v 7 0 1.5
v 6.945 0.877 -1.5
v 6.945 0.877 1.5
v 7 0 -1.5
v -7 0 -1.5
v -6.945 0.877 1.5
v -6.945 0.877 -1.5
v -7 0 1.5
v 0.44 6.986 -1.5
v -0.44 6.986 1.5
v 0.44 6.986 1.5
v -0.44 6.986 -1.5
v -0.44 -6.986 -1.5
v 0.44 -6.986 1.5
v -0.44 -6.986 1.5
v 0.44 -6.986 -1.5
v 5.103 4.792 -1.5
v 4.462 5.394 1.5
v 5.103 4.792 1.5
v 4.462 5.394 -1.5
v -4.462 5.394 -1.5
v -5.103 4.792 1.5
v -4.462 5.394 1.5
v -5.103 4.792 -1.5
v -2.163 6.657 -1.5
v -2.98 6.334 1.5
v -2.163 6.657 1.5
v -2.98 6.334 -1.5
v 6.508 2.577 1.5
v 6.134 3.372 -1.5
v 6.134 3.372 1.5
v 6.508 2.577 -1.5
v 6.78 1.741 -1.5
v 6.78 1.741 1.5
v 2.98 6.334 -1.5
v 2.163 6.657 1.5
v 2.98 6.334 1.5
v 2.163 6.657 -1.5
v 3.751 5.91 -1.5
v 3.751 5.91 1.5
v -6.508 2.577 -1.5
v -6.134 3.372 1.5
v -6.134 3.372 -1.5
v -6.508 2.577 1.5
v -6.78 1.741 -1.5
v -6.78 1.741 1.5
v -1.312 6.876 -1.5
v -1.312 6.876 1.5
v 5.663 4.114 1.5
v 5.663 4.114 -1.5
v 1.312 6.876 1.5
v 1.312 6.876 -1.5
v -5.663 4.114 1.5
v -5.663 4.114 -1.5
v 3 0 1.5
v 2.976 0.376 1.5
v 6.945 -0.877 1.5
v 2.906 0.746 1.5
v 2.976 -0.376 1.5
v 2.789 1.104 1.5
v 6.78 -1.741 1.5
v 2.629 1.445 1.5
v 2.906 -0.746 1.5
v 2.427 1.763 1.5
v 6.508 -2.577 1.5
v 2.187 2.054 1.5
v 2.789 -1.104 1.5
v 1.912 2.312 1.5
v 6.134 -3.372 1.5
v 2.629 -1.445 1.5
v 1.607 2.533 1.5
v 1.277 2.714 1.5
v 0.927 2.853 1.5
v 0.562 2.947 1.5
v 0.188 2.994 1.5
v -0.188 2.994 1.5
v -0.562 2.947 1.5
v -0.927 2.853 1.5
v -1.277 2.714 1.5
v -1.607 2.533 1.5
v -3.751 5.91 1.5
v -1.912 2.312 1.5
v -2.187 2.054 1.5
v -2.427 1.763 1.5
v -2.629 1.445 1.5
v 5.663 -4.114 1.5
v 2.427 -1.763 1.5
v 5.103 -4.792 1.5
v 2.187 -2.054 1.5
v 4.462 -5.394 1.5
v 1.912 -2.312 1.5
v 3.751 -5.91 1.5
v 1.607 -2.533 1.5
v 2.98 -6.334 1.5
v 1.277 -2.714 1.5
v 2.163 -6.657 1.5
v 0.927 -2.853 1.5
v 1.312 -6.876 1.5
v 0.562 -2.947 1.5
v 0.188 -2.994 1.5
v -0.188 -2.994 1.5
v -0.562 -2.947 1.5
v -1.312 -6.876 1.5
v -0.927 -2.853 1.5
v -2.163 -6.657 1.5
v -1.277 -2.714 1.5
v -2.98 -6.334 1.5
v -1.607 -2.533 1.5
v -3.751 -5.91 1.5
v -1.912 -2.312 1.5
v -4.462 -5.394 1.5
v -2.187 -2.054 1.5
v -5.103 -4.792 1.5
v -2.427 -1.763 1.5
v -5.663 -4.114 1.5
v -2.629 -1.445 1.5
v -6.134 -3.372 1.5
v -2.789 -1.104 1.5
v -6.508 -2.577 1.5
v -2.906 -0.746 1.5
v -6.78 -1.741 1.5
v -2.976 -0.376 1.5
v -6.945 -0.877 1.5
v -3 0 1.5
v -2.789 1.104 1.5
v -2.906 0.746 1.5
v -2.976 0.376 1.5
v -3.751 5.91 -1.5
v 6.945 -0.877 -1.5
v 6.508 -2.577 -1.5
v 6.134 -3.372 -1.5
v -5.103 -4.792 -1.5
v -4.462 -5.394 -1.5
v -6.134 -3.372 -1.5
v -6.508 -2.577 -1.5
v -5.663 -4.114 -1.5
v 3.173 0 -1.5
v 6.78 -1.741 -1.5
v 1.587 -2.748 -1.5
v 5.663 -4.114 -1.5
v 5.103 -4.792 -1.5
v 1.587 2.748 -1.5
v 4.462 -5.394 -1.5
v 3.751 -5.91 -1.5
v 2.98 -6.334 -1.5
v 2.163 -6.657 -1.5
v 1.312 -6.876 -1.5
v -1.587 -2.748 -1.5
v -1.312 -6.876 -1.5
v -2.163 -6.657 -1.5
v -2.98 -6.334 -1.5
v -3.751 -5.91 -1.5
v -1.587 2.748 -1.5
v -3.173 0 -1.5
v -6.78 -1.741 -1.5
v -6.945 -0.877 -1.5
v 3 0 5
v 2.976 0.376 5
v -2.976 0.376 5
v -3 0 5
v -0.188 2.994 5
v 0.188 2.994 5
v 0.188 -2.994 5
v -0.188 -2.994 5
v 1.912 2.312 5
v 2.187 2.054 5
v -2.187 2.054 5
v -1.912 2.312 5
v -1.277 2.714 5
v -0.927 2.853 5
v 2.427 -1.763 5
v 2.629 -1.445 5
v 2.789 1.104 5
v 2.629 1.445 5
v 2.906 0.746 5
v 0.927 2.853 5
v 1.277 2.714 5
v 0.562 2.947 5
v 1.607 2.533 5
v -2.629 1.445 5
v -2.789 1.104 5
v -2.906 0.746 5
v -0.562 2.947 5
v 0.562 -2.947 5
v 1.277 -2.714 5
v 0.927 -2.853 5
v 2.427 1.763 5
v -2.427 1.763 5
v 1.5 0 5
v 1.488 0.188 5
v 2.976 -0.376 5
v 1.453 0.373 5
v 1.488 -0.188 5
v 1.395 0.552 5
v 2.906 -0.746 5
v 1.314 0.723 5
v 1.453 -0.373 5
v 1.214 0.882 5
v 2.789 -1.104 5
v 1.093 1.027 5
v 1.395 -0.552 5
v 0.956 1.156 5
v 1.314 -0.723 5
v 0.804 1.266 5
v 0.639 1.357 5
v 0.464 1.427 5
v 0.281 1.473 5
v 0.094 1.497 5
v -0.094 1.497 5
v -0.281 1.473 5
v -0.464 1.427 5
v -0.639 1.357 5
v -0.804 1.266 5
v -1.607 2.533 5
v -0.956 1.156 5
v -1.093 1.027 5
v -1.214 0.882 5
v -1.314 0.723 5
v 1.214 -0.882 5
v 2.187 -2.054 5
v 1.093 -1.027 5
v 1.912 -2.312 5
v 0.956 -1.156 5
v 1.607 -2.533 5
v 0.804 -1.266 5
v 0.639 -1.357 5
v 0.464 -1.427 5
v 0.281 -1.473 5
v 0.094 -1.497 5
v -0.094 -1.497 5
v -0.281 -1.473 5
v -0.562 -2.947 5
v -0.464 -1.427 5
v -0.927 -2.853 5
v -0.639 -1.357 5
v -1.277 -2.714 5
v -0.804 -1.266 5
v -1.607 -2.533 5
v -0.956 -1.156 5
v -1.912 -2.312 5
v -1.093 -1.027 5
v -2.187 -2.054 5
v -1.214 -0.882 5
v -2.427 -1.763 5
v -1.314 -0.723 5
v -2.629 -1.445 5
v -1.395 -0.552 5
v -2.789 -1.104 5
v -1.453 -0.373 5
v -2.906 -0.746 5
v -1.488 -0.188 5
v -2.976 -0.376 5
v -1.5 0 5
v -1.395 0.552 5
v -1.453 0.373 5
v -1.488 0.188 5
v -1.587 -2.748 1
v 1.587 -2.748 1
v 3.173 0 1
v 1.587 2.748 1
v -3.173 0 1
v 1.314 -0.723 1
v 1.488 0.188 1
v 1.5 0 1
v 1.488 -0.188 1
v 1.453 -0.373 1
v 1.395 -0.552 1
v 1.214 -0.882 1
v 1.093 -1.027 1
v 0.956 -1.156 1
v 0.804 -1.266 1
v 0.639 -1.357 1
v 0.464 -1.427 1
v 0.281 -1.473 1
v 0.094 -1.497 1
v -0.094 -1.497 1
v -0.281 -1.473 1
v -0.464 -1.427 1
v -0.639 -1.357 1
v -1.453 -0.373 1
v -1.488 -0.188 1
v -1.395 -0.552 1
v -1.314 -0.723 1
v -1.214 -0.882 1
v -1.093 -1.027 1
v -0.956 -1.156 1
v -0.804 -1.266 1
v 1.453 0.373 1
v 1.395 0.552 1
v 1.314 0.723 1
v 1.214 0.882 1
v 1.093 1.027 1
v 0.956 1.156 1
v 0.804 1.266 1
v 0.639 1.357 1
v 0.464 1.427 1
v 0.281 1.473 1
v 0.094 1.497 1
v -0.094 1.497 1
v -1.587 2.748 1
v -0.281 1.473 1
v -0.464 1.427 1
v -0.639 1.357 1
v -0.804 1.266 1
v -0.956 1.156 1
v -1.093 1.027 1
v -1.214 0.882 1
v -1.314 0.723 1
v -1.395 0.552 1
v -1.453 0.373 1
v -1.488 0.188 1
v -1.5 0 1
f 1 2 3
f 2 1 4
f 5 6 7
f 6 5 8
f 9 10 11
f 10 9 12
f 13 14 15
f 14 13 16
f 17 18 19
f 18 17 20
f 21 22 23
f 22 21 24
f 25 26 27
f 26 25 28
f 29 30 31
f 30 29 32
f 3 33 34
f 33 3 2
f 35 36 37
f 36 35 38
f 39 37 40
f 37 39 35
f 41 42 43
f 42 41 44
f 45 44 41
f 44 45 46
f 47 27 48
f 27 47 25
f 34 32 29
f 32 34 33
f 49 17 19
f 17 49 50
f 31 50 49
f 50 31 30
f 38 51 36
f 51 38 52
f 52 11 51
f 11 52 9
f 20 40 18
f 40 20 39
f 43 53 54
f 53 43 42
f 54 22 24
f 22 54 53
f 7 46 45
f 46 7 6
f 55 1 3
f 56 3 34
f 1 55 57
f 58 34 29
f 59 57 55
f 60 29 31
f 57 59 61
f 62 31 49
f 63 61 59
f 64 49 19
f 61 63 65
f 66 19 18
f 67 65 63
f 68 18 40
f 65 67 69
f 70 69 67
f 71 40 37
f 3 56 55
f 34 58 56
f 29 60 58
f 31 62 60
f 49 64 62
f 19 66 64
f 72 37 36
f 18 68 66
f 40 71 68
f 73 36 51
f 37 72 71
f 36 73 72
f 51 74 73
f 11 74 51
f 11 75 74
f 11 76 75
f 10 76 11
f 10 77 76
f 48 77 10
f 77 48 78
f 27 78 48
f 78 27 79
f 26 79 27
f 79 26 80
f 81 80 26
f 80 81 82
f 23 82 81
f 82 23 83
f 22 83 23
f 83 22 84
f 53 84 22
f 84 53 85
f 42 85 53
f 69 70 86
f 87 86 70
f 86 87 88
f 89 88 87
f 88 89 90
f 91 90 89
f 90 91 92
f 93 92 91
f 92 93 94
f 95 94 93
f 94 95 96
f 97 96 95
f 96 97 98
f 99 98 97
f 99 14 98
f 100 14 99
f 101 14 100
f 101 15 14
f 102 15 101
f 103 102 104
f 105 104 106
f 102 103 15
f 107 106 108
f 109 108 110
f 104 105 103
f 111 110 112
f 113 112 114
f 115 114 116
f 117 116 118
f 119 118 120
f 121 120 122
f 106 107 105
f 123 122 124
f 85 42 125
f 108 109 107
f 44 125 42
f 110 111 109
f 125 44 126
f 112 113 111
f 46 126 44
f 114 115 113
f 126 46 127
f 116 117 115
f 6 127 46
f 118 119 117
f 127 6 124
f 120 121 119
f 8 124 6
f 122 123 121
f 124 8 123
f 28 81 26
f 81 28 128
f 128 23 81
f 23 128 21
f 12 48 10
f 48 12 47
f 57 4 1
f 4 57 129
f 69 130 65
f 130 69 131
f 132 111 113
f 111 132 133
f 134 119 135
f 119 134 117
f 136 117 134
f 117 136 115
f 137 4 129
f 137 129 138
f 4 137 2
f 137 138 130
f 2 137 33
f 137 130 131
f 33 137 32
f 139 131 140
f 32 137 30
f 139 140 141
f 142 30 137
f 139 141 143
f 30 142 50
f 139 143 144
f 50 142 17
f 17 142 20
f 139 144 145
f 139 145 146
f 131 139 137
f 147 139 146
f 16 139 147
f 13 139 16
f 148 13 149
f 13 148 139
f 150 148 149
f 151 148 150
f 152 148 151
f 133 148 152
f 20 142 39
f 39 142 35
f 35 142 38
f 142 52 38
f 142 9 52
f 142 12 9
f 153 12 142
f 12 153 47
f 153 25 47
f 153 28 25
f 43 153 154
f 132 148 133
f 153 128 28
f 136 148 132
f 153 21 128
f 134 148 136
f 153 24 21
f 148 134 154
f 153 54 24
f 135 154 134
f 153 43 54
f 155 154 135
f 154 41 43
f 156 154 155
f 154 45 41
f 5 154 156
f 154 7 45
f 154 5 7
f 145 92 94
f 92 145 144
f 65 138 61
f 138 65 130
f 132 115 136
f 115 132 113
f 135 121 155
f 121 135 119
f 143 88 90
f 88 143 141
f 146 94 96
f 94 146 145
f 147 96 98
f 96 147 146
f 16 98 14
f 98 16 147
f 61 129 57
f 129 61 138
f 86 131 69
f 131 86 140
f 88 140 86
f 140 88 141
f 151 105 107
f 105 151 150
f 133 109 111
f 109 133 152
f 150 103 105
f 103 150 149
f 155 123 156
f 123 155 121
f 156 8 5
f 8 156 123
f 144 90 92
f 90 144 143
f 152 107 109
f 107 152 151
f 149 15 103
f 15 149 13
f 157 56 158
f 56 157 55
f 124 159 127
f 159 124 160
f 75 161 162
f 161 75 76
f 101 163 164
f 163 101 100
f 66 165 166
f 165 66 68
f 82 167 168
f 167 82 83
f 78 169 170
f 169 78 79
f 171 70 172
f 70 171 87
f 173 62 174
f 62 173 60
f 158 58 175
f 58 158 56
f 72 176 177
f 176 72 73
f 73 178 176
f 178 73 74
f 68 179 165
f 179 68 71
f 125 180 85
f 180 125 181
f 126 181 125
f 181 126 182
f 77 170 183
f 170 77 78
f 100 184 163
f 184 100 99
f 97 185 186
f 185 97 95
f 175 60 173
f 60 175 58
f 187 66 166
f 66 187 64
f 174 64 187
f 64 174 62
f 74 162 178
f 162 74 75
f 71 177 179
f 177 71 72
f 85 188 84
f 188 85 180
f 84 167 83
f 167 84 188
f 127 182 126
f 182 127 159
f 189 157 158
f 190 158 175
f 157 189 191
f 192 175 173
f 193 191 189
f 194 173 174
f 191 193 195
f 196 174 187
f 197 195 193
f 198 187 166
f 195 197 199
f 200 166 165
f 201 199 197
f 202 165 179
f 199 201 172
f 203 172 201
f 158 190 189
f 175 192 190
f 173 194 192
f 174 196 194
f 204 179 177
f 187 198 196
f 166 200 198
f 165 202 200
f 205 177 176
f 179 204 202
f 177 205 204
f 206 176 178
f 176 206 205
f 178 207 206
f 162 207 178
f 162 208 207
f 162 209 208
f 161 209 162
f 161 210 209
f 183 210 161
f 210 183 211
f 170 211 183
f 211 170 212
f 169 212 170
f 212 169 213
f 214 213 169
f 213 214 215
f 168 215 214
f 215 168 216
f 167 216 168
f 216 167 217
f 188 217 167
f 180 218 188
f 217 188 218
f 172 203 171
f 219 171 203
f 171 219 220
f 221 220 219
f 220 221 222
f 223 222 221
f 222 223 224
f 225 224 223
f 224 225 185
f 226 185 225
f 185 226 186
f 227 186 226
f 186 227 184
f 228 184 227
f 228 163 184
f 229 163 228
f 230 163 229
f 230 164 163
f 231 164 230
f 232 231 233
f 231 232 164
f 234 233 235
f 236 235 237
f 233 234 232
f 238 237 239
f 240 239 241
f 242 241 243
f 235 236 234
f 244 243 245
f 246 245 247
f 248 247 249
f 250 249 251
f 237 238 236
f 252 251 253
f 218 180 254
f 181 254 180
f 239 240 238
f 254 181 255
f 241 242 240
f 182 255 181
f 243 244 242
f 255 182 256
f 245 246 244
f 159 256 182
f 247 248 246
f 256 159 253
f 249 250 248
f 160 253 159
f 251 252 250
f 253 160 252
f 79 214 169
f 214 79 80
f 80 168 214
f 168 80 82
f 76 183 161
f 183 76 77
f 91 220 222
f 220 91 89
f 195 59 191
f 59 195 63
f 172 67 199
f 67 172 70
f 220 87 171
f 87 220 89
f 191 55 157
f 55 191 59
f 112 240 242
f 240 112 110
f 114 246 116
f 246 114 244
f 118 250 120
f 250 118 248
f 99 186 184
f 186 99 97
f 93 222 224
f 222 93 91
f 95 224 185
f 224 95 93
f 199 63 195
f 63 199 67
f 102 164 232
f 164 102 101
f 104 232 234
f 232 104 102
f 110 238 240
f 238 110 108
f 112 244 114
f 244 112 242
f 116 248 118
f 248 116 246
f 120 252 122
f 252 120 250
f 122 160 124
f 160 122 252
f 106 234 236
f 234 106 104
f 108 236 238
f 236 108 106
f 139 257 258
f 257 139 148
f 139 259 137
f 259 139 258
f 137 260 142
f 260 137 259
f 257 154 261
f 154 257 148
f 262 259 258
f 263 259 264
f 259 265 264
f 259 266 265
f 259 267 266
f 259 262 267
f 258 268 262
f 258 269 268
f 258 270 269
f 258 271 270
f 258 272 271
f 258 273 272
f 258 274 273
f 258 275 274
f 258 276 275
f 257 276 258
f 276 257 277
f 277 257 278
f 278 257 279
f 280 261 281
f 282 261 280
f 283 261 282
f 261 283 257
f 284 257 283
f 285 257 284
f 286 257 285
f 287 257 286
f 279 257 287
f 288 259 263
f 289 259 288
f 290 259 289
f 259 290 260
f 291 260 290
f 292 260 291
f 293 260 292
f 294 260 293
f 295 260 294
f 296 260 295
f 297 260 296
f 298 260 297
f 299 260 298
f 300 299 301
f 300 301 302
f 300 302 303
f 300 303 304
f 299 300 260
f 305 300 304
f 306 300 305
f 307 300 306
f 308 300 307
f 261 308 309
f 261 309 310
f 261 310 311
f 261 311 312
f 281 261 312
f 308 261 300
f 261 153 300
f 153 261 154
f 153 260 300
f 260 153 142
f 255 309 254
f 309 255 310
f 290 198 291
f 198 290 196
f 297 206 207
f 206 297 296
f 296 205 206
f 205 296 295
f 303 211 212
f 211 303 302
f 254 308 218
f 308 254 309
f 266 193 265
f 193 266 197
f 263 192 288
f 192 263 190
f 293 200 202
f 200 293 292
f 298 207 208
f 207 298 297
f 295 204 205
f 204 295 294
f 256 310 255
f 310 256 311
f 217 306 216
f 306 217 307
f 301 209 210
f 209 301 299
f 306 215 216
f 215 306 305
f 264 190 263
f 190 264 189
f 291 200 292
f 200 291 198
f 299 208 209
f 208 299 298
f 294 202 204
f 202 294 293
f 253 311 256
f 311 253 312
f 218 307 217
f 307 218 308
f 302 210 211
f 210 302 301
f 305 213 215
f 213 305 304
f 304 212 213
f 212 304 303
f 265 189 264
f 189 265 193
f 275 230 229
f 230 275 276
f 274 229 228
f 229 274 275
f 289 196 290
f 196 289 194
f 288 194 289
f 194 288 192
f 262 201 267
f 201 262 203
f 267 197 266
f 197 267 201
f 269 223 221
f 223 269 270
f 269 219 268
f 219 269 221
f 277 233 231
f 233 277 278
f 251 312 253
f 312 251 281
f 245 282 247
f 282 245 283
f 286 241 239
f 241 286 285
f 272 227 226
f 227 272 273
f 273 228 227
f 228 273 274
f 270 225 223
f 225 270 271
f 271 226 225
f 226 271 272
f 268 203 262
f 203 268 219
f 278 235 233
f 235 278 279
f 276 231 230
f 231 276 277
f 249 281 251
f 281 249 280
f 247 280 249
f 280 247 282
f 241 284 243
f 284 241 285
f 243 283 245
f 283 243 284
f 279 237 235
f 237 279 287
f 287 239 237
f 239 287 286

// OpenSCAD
$fn = 50;


difference() {
	union() {
		translate(v = [0, 0, -1.5000000000]) {
			cylinder(h = 3, r = 7.0000000000);
		}
		translate(v = [0, 0, -1.5000000000]) {
			cylinder(h = 6.5000000000, r = 3.0000000000);
		}
	}
	union() {
		translate(v = [0, 0, -1.5000000000]) {
			rotate(a = [0, 0, 0]) {
				difference() {
					union() {
						linear_extrude(height = 2.5000000000) {
							polygon(points = [[3.1735000000, 0.0000000000], [1.5867500000, 2.7483316189], [-1.5867500000, 2.7483316189], [-3.1735000000, 0.0000000000], [-1.5867500000, -2.7483316189], [1.5867500000, -2.7483316189]]);
						}
					}
					union();
				}
			}
		}
		translate(v = [0, 0, -50.0000000000]) {
			cylinder(h = 100, r = 1.5000000000);
		}
	}
}
